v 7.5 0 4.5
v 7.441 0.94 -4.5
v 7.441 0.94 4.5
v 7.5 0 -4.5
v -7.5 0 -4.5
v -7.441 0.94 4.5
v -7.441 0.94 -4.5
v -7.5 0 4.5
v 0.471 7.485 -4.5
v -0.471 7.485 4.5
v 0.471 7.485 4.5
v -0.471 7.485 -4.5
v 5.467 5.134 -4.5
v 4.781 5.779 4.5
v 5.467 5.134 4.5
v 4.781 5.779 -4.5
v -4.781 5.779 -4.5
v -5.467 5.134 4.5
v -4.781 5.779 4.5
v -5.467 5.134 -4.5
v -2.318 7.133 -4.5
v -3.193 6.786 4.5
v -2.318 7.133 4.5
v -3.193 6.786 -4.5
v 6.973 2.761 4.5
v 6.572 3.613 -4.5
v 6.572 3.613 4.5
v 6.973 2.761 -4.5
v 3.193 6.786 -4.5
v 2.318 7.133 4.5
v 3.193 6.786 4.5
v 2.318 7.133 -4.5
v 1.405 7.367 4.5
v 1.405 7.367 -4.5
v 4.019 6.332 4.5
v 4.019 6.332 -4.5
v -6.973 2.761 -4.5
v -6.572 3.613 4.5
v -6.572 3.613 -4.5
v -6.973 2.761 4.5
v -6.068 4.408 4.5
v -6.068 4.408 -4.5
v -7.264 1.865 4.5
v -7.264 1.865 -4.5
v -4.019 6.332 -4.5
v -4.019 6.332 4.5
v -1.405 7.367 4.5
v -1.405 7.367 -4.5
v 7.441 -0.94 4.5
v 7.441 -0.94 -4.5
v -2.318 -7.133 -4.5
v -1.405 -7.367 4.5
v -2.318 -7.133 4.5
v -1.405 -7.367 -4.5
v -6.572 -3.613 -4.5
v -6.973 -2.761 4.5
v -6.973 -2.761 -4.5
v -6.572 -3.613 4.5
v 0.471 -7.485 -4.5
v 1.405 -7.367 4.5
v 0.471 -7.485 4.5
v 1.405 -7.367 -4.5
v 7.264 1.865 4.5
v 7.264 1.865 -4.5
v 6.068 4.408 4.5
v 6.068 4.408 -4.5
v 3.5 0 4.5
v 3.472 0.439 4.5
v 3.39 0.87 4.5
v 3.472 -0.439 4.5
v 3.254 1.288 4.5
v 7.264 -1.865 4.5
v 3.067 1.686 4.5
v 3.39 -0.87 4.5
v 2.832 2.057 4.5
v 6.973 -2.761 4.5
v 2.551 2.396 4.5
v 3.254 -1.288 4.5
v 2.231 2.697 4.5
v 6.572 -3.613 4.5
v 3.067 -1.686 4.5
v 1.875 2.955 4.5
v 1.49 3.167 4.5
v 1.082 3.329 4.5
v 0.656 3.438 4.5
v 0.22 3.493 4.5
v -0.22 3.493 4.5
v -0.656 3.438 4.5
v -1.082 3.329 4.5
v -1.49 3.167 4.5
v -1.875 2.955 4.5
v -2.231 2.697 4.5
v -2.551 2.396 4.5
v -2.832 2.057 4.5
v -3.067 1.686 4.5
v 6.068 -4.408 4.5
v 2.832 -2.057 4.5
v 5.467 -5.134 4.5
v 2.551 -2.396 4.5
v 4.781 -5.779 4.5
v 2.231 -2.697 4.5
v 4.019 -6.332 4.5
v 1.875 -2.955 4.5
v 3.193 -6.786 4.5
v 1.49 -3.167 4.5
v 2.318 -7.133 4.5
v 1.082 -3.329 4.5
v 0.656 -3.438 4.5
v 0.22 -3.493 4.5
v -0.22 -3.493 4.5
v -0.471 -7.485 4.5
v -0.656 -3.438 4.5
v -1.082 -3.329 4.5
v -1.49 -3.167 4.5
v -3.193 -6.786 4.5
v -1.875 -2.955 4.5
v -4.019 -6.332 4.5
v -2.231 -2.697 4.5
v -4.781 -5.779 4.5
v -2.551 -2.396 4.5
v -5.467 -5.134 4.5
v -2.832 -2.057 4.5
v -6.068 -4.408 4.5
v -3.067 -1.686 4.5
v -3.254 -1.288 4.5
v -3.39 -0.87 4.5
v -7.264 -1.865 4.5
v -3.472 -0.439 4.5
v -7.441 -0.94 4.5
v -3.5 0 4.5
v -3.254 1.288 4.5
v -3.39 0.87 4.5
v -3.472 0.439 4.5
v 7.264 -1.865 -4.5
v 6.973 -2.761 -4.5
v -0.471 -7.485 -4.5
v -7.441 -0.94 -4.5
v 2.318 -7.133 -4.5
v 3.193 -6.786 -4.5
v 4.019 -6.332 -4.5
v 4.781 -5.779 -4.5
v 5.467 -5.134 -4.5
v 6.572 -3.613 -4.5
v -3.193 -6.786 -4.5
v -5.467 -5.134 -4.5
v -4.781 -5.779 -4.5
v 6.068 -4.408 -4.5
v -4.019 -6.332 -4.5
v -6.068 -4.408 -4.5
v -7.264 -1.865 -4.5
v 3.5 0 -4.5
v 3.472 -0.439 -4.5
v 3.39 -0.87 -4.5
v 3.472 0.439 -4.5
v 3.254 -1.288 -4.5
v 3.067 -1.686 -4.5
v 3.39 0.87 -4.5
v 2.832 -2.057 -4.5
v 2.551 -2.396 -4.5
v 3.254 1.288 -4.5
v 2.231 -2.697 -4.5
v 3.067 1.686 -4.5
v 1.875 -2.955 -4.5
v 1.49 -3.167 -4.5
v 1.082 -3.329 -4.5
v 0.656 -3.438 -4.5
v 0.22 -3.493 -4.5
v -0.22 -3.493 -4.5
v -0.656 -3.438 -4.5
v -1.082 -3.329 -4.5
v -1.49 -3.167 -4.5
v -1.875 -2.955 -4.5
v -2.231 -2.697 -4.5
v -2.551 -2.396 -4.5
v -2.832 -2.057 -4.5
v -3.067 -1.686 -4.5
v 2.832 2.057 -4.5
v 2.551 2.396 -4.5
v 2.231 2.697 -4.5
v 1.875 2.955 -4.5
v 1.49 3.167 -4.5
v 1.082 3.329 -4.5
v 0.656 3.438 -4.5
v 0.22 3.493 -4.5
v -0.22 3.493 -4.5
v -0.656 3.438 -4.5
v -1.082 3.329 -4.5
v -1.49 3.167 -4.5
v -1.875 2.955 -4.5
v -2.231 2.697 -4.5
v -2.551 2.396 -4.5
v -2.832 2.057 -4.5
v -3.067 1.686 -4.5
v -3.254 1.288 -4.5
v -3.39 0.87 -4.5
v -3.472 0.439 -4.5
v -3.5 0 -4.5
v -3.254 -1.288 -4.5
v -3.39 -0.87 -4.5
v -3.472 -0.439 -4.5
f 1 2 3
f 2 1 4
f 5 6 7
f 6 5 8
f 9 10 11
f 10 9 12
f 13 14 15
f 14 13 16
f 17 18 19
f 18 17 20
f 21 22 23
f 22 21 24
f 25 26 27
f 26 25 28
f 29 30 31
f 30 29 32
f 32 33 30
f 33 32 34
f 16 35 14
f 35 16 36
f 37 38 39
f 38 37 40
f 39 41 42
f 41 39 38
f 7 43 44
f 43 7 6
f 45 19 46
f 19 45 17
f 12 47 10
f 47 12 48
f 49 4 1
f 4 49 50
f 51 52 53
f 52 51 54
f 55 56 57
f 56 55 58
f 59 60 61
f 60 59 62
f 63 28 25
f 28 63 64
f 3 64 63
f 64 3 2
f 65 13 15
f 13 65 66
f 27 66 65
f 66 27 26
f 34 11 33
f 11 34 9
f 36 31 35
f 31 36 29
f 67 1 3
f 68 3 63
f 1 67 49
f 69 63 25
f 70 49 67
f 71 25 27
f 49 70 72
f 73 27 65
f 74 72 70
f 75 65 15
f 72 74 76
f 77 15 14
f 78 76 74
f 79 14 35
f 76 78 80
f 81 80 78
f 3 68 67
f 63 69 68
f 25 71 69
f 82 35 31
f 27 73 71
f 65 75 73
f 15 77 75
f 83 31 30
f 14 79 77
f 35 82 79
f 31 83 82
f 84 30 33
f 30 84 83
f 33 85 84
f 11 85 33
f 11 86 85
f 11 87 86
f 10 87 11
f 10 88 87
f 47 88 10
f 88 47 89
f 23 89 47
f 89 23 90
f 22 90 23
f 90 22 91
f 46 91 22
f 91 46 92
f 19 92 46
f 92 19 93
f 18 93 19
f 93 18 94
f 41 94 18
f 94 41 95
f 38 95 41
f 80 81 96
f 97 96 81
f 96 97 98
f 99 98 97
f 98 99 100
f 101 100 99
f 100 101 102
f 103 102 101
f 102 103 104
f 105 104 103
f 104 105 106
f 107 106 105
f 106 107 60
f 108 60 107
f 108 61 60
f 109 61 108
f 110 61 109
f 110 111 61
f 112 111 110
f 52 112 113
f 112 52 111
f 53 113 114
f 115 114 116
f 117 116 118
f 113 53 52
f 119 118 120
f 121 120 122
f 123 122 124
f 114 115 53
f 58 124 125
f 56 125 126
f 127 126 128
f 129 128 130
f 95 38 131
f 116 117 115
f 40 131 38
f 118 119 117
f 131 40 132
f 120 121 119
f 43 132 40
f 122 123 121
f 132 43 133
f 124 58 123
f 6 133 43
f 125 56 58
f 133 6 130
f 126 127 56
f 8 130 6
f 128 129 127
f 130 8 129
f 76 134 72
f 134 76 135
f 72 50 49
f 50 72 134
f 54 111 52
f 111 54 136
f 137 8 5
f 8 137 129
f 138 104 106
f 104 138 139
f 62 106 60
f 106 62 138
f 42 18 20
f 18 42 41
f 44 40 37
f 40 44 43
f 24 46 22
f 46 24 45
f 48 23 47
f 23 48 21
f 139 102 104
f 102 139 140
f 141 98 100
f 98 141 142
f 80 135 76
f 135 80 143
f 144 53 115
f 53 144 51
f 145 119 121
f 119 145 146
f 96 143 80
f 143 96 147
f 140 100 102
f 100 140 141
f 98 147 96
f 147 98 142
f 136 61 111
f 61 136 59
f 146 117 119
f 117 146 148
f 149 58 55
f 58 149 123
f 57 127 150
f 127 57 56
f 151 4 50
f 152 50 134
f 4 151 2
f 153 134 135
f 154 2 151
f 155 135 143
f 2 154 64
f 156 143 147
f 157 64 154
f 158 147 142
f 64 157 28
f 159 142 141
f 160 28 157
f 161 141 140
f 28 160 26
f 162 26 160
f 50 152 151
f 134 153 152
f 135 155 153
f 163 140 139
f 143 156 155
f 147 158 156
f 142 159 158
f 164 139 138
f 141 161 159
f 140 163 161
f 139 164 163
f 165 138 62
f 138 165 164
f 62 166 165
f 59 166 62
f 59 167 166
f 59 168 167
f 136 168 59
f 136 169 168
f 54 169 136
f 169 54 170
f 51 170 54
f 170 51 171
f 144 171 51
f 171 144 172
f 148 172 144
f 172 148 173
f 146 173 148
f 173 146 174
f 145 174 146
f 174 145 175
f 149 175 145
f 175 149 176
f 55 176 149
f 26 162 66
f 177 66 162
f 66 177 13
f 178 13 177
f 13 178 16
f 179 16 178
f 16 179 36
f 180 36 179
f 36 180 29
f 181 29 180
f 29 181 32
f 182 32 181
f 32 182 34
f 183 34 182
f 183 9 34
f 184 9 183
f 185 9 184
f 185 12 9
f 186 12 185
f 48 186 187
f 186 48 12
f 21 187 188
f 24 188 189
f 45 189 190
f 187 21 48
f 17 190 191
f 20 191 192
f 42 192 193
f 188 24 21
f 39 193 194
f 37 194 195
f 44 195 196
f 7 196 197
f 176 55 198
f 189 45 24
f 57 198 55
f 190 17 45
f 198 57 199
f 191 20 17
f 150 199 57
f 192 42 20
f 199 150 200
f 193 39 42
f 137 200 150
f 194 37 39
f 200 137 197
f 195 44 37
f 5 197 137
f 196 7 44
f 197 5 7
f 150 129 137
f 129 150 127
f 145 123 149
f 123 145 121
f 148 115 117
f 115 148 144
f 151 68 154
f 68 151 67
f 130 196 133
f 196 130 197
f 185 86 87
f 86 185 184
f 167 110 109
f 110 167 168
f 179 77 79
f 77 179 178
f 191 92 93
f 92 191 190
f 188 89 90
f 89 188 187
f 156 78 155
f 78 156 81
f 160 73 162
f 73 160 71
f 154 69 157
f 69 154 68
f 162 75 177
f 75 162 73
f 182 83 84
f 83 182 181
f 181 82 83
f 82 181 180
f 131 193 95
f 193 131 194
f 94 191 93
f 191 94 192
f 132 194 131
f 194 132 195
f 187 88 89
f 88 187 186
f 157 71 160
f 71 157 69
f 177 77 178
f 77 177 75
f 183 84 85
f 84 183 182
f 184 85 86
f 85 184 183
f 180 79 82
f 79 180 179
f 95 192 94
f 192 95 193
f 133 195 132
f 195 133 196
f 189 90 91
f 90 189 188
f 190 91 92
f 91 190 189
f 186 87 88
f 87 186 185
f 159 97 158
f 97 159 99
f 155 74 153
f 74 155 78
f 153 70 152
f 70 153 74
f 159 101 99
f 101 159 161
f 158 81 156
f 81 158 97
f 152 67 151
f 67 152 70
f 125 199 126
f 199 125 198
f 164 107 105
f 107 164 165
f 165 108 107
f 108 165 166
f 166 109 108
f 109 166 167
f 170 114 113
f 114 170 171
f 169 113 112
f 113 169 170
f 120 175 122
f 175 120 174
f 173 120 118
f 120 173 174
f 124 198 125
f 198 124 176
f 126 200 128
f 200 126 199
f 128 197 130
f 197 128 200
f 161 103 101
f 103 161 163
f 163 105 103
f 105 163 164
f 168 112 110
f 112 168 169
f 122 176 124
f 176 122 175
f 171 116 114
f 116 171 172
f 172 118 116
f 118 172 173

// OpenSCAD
$fn = 50;


difference() {
	union() {
		translate(v = [0, 0, -4.5000000000]) {
			cylinder(h = 9, r = 7.5000000000);
		}
	}
	union() {
		translate(v = [0, 0, -100.0000000000]) {
			cylinder(h = 200, r = 3.5000000000);
		}
	}
}
